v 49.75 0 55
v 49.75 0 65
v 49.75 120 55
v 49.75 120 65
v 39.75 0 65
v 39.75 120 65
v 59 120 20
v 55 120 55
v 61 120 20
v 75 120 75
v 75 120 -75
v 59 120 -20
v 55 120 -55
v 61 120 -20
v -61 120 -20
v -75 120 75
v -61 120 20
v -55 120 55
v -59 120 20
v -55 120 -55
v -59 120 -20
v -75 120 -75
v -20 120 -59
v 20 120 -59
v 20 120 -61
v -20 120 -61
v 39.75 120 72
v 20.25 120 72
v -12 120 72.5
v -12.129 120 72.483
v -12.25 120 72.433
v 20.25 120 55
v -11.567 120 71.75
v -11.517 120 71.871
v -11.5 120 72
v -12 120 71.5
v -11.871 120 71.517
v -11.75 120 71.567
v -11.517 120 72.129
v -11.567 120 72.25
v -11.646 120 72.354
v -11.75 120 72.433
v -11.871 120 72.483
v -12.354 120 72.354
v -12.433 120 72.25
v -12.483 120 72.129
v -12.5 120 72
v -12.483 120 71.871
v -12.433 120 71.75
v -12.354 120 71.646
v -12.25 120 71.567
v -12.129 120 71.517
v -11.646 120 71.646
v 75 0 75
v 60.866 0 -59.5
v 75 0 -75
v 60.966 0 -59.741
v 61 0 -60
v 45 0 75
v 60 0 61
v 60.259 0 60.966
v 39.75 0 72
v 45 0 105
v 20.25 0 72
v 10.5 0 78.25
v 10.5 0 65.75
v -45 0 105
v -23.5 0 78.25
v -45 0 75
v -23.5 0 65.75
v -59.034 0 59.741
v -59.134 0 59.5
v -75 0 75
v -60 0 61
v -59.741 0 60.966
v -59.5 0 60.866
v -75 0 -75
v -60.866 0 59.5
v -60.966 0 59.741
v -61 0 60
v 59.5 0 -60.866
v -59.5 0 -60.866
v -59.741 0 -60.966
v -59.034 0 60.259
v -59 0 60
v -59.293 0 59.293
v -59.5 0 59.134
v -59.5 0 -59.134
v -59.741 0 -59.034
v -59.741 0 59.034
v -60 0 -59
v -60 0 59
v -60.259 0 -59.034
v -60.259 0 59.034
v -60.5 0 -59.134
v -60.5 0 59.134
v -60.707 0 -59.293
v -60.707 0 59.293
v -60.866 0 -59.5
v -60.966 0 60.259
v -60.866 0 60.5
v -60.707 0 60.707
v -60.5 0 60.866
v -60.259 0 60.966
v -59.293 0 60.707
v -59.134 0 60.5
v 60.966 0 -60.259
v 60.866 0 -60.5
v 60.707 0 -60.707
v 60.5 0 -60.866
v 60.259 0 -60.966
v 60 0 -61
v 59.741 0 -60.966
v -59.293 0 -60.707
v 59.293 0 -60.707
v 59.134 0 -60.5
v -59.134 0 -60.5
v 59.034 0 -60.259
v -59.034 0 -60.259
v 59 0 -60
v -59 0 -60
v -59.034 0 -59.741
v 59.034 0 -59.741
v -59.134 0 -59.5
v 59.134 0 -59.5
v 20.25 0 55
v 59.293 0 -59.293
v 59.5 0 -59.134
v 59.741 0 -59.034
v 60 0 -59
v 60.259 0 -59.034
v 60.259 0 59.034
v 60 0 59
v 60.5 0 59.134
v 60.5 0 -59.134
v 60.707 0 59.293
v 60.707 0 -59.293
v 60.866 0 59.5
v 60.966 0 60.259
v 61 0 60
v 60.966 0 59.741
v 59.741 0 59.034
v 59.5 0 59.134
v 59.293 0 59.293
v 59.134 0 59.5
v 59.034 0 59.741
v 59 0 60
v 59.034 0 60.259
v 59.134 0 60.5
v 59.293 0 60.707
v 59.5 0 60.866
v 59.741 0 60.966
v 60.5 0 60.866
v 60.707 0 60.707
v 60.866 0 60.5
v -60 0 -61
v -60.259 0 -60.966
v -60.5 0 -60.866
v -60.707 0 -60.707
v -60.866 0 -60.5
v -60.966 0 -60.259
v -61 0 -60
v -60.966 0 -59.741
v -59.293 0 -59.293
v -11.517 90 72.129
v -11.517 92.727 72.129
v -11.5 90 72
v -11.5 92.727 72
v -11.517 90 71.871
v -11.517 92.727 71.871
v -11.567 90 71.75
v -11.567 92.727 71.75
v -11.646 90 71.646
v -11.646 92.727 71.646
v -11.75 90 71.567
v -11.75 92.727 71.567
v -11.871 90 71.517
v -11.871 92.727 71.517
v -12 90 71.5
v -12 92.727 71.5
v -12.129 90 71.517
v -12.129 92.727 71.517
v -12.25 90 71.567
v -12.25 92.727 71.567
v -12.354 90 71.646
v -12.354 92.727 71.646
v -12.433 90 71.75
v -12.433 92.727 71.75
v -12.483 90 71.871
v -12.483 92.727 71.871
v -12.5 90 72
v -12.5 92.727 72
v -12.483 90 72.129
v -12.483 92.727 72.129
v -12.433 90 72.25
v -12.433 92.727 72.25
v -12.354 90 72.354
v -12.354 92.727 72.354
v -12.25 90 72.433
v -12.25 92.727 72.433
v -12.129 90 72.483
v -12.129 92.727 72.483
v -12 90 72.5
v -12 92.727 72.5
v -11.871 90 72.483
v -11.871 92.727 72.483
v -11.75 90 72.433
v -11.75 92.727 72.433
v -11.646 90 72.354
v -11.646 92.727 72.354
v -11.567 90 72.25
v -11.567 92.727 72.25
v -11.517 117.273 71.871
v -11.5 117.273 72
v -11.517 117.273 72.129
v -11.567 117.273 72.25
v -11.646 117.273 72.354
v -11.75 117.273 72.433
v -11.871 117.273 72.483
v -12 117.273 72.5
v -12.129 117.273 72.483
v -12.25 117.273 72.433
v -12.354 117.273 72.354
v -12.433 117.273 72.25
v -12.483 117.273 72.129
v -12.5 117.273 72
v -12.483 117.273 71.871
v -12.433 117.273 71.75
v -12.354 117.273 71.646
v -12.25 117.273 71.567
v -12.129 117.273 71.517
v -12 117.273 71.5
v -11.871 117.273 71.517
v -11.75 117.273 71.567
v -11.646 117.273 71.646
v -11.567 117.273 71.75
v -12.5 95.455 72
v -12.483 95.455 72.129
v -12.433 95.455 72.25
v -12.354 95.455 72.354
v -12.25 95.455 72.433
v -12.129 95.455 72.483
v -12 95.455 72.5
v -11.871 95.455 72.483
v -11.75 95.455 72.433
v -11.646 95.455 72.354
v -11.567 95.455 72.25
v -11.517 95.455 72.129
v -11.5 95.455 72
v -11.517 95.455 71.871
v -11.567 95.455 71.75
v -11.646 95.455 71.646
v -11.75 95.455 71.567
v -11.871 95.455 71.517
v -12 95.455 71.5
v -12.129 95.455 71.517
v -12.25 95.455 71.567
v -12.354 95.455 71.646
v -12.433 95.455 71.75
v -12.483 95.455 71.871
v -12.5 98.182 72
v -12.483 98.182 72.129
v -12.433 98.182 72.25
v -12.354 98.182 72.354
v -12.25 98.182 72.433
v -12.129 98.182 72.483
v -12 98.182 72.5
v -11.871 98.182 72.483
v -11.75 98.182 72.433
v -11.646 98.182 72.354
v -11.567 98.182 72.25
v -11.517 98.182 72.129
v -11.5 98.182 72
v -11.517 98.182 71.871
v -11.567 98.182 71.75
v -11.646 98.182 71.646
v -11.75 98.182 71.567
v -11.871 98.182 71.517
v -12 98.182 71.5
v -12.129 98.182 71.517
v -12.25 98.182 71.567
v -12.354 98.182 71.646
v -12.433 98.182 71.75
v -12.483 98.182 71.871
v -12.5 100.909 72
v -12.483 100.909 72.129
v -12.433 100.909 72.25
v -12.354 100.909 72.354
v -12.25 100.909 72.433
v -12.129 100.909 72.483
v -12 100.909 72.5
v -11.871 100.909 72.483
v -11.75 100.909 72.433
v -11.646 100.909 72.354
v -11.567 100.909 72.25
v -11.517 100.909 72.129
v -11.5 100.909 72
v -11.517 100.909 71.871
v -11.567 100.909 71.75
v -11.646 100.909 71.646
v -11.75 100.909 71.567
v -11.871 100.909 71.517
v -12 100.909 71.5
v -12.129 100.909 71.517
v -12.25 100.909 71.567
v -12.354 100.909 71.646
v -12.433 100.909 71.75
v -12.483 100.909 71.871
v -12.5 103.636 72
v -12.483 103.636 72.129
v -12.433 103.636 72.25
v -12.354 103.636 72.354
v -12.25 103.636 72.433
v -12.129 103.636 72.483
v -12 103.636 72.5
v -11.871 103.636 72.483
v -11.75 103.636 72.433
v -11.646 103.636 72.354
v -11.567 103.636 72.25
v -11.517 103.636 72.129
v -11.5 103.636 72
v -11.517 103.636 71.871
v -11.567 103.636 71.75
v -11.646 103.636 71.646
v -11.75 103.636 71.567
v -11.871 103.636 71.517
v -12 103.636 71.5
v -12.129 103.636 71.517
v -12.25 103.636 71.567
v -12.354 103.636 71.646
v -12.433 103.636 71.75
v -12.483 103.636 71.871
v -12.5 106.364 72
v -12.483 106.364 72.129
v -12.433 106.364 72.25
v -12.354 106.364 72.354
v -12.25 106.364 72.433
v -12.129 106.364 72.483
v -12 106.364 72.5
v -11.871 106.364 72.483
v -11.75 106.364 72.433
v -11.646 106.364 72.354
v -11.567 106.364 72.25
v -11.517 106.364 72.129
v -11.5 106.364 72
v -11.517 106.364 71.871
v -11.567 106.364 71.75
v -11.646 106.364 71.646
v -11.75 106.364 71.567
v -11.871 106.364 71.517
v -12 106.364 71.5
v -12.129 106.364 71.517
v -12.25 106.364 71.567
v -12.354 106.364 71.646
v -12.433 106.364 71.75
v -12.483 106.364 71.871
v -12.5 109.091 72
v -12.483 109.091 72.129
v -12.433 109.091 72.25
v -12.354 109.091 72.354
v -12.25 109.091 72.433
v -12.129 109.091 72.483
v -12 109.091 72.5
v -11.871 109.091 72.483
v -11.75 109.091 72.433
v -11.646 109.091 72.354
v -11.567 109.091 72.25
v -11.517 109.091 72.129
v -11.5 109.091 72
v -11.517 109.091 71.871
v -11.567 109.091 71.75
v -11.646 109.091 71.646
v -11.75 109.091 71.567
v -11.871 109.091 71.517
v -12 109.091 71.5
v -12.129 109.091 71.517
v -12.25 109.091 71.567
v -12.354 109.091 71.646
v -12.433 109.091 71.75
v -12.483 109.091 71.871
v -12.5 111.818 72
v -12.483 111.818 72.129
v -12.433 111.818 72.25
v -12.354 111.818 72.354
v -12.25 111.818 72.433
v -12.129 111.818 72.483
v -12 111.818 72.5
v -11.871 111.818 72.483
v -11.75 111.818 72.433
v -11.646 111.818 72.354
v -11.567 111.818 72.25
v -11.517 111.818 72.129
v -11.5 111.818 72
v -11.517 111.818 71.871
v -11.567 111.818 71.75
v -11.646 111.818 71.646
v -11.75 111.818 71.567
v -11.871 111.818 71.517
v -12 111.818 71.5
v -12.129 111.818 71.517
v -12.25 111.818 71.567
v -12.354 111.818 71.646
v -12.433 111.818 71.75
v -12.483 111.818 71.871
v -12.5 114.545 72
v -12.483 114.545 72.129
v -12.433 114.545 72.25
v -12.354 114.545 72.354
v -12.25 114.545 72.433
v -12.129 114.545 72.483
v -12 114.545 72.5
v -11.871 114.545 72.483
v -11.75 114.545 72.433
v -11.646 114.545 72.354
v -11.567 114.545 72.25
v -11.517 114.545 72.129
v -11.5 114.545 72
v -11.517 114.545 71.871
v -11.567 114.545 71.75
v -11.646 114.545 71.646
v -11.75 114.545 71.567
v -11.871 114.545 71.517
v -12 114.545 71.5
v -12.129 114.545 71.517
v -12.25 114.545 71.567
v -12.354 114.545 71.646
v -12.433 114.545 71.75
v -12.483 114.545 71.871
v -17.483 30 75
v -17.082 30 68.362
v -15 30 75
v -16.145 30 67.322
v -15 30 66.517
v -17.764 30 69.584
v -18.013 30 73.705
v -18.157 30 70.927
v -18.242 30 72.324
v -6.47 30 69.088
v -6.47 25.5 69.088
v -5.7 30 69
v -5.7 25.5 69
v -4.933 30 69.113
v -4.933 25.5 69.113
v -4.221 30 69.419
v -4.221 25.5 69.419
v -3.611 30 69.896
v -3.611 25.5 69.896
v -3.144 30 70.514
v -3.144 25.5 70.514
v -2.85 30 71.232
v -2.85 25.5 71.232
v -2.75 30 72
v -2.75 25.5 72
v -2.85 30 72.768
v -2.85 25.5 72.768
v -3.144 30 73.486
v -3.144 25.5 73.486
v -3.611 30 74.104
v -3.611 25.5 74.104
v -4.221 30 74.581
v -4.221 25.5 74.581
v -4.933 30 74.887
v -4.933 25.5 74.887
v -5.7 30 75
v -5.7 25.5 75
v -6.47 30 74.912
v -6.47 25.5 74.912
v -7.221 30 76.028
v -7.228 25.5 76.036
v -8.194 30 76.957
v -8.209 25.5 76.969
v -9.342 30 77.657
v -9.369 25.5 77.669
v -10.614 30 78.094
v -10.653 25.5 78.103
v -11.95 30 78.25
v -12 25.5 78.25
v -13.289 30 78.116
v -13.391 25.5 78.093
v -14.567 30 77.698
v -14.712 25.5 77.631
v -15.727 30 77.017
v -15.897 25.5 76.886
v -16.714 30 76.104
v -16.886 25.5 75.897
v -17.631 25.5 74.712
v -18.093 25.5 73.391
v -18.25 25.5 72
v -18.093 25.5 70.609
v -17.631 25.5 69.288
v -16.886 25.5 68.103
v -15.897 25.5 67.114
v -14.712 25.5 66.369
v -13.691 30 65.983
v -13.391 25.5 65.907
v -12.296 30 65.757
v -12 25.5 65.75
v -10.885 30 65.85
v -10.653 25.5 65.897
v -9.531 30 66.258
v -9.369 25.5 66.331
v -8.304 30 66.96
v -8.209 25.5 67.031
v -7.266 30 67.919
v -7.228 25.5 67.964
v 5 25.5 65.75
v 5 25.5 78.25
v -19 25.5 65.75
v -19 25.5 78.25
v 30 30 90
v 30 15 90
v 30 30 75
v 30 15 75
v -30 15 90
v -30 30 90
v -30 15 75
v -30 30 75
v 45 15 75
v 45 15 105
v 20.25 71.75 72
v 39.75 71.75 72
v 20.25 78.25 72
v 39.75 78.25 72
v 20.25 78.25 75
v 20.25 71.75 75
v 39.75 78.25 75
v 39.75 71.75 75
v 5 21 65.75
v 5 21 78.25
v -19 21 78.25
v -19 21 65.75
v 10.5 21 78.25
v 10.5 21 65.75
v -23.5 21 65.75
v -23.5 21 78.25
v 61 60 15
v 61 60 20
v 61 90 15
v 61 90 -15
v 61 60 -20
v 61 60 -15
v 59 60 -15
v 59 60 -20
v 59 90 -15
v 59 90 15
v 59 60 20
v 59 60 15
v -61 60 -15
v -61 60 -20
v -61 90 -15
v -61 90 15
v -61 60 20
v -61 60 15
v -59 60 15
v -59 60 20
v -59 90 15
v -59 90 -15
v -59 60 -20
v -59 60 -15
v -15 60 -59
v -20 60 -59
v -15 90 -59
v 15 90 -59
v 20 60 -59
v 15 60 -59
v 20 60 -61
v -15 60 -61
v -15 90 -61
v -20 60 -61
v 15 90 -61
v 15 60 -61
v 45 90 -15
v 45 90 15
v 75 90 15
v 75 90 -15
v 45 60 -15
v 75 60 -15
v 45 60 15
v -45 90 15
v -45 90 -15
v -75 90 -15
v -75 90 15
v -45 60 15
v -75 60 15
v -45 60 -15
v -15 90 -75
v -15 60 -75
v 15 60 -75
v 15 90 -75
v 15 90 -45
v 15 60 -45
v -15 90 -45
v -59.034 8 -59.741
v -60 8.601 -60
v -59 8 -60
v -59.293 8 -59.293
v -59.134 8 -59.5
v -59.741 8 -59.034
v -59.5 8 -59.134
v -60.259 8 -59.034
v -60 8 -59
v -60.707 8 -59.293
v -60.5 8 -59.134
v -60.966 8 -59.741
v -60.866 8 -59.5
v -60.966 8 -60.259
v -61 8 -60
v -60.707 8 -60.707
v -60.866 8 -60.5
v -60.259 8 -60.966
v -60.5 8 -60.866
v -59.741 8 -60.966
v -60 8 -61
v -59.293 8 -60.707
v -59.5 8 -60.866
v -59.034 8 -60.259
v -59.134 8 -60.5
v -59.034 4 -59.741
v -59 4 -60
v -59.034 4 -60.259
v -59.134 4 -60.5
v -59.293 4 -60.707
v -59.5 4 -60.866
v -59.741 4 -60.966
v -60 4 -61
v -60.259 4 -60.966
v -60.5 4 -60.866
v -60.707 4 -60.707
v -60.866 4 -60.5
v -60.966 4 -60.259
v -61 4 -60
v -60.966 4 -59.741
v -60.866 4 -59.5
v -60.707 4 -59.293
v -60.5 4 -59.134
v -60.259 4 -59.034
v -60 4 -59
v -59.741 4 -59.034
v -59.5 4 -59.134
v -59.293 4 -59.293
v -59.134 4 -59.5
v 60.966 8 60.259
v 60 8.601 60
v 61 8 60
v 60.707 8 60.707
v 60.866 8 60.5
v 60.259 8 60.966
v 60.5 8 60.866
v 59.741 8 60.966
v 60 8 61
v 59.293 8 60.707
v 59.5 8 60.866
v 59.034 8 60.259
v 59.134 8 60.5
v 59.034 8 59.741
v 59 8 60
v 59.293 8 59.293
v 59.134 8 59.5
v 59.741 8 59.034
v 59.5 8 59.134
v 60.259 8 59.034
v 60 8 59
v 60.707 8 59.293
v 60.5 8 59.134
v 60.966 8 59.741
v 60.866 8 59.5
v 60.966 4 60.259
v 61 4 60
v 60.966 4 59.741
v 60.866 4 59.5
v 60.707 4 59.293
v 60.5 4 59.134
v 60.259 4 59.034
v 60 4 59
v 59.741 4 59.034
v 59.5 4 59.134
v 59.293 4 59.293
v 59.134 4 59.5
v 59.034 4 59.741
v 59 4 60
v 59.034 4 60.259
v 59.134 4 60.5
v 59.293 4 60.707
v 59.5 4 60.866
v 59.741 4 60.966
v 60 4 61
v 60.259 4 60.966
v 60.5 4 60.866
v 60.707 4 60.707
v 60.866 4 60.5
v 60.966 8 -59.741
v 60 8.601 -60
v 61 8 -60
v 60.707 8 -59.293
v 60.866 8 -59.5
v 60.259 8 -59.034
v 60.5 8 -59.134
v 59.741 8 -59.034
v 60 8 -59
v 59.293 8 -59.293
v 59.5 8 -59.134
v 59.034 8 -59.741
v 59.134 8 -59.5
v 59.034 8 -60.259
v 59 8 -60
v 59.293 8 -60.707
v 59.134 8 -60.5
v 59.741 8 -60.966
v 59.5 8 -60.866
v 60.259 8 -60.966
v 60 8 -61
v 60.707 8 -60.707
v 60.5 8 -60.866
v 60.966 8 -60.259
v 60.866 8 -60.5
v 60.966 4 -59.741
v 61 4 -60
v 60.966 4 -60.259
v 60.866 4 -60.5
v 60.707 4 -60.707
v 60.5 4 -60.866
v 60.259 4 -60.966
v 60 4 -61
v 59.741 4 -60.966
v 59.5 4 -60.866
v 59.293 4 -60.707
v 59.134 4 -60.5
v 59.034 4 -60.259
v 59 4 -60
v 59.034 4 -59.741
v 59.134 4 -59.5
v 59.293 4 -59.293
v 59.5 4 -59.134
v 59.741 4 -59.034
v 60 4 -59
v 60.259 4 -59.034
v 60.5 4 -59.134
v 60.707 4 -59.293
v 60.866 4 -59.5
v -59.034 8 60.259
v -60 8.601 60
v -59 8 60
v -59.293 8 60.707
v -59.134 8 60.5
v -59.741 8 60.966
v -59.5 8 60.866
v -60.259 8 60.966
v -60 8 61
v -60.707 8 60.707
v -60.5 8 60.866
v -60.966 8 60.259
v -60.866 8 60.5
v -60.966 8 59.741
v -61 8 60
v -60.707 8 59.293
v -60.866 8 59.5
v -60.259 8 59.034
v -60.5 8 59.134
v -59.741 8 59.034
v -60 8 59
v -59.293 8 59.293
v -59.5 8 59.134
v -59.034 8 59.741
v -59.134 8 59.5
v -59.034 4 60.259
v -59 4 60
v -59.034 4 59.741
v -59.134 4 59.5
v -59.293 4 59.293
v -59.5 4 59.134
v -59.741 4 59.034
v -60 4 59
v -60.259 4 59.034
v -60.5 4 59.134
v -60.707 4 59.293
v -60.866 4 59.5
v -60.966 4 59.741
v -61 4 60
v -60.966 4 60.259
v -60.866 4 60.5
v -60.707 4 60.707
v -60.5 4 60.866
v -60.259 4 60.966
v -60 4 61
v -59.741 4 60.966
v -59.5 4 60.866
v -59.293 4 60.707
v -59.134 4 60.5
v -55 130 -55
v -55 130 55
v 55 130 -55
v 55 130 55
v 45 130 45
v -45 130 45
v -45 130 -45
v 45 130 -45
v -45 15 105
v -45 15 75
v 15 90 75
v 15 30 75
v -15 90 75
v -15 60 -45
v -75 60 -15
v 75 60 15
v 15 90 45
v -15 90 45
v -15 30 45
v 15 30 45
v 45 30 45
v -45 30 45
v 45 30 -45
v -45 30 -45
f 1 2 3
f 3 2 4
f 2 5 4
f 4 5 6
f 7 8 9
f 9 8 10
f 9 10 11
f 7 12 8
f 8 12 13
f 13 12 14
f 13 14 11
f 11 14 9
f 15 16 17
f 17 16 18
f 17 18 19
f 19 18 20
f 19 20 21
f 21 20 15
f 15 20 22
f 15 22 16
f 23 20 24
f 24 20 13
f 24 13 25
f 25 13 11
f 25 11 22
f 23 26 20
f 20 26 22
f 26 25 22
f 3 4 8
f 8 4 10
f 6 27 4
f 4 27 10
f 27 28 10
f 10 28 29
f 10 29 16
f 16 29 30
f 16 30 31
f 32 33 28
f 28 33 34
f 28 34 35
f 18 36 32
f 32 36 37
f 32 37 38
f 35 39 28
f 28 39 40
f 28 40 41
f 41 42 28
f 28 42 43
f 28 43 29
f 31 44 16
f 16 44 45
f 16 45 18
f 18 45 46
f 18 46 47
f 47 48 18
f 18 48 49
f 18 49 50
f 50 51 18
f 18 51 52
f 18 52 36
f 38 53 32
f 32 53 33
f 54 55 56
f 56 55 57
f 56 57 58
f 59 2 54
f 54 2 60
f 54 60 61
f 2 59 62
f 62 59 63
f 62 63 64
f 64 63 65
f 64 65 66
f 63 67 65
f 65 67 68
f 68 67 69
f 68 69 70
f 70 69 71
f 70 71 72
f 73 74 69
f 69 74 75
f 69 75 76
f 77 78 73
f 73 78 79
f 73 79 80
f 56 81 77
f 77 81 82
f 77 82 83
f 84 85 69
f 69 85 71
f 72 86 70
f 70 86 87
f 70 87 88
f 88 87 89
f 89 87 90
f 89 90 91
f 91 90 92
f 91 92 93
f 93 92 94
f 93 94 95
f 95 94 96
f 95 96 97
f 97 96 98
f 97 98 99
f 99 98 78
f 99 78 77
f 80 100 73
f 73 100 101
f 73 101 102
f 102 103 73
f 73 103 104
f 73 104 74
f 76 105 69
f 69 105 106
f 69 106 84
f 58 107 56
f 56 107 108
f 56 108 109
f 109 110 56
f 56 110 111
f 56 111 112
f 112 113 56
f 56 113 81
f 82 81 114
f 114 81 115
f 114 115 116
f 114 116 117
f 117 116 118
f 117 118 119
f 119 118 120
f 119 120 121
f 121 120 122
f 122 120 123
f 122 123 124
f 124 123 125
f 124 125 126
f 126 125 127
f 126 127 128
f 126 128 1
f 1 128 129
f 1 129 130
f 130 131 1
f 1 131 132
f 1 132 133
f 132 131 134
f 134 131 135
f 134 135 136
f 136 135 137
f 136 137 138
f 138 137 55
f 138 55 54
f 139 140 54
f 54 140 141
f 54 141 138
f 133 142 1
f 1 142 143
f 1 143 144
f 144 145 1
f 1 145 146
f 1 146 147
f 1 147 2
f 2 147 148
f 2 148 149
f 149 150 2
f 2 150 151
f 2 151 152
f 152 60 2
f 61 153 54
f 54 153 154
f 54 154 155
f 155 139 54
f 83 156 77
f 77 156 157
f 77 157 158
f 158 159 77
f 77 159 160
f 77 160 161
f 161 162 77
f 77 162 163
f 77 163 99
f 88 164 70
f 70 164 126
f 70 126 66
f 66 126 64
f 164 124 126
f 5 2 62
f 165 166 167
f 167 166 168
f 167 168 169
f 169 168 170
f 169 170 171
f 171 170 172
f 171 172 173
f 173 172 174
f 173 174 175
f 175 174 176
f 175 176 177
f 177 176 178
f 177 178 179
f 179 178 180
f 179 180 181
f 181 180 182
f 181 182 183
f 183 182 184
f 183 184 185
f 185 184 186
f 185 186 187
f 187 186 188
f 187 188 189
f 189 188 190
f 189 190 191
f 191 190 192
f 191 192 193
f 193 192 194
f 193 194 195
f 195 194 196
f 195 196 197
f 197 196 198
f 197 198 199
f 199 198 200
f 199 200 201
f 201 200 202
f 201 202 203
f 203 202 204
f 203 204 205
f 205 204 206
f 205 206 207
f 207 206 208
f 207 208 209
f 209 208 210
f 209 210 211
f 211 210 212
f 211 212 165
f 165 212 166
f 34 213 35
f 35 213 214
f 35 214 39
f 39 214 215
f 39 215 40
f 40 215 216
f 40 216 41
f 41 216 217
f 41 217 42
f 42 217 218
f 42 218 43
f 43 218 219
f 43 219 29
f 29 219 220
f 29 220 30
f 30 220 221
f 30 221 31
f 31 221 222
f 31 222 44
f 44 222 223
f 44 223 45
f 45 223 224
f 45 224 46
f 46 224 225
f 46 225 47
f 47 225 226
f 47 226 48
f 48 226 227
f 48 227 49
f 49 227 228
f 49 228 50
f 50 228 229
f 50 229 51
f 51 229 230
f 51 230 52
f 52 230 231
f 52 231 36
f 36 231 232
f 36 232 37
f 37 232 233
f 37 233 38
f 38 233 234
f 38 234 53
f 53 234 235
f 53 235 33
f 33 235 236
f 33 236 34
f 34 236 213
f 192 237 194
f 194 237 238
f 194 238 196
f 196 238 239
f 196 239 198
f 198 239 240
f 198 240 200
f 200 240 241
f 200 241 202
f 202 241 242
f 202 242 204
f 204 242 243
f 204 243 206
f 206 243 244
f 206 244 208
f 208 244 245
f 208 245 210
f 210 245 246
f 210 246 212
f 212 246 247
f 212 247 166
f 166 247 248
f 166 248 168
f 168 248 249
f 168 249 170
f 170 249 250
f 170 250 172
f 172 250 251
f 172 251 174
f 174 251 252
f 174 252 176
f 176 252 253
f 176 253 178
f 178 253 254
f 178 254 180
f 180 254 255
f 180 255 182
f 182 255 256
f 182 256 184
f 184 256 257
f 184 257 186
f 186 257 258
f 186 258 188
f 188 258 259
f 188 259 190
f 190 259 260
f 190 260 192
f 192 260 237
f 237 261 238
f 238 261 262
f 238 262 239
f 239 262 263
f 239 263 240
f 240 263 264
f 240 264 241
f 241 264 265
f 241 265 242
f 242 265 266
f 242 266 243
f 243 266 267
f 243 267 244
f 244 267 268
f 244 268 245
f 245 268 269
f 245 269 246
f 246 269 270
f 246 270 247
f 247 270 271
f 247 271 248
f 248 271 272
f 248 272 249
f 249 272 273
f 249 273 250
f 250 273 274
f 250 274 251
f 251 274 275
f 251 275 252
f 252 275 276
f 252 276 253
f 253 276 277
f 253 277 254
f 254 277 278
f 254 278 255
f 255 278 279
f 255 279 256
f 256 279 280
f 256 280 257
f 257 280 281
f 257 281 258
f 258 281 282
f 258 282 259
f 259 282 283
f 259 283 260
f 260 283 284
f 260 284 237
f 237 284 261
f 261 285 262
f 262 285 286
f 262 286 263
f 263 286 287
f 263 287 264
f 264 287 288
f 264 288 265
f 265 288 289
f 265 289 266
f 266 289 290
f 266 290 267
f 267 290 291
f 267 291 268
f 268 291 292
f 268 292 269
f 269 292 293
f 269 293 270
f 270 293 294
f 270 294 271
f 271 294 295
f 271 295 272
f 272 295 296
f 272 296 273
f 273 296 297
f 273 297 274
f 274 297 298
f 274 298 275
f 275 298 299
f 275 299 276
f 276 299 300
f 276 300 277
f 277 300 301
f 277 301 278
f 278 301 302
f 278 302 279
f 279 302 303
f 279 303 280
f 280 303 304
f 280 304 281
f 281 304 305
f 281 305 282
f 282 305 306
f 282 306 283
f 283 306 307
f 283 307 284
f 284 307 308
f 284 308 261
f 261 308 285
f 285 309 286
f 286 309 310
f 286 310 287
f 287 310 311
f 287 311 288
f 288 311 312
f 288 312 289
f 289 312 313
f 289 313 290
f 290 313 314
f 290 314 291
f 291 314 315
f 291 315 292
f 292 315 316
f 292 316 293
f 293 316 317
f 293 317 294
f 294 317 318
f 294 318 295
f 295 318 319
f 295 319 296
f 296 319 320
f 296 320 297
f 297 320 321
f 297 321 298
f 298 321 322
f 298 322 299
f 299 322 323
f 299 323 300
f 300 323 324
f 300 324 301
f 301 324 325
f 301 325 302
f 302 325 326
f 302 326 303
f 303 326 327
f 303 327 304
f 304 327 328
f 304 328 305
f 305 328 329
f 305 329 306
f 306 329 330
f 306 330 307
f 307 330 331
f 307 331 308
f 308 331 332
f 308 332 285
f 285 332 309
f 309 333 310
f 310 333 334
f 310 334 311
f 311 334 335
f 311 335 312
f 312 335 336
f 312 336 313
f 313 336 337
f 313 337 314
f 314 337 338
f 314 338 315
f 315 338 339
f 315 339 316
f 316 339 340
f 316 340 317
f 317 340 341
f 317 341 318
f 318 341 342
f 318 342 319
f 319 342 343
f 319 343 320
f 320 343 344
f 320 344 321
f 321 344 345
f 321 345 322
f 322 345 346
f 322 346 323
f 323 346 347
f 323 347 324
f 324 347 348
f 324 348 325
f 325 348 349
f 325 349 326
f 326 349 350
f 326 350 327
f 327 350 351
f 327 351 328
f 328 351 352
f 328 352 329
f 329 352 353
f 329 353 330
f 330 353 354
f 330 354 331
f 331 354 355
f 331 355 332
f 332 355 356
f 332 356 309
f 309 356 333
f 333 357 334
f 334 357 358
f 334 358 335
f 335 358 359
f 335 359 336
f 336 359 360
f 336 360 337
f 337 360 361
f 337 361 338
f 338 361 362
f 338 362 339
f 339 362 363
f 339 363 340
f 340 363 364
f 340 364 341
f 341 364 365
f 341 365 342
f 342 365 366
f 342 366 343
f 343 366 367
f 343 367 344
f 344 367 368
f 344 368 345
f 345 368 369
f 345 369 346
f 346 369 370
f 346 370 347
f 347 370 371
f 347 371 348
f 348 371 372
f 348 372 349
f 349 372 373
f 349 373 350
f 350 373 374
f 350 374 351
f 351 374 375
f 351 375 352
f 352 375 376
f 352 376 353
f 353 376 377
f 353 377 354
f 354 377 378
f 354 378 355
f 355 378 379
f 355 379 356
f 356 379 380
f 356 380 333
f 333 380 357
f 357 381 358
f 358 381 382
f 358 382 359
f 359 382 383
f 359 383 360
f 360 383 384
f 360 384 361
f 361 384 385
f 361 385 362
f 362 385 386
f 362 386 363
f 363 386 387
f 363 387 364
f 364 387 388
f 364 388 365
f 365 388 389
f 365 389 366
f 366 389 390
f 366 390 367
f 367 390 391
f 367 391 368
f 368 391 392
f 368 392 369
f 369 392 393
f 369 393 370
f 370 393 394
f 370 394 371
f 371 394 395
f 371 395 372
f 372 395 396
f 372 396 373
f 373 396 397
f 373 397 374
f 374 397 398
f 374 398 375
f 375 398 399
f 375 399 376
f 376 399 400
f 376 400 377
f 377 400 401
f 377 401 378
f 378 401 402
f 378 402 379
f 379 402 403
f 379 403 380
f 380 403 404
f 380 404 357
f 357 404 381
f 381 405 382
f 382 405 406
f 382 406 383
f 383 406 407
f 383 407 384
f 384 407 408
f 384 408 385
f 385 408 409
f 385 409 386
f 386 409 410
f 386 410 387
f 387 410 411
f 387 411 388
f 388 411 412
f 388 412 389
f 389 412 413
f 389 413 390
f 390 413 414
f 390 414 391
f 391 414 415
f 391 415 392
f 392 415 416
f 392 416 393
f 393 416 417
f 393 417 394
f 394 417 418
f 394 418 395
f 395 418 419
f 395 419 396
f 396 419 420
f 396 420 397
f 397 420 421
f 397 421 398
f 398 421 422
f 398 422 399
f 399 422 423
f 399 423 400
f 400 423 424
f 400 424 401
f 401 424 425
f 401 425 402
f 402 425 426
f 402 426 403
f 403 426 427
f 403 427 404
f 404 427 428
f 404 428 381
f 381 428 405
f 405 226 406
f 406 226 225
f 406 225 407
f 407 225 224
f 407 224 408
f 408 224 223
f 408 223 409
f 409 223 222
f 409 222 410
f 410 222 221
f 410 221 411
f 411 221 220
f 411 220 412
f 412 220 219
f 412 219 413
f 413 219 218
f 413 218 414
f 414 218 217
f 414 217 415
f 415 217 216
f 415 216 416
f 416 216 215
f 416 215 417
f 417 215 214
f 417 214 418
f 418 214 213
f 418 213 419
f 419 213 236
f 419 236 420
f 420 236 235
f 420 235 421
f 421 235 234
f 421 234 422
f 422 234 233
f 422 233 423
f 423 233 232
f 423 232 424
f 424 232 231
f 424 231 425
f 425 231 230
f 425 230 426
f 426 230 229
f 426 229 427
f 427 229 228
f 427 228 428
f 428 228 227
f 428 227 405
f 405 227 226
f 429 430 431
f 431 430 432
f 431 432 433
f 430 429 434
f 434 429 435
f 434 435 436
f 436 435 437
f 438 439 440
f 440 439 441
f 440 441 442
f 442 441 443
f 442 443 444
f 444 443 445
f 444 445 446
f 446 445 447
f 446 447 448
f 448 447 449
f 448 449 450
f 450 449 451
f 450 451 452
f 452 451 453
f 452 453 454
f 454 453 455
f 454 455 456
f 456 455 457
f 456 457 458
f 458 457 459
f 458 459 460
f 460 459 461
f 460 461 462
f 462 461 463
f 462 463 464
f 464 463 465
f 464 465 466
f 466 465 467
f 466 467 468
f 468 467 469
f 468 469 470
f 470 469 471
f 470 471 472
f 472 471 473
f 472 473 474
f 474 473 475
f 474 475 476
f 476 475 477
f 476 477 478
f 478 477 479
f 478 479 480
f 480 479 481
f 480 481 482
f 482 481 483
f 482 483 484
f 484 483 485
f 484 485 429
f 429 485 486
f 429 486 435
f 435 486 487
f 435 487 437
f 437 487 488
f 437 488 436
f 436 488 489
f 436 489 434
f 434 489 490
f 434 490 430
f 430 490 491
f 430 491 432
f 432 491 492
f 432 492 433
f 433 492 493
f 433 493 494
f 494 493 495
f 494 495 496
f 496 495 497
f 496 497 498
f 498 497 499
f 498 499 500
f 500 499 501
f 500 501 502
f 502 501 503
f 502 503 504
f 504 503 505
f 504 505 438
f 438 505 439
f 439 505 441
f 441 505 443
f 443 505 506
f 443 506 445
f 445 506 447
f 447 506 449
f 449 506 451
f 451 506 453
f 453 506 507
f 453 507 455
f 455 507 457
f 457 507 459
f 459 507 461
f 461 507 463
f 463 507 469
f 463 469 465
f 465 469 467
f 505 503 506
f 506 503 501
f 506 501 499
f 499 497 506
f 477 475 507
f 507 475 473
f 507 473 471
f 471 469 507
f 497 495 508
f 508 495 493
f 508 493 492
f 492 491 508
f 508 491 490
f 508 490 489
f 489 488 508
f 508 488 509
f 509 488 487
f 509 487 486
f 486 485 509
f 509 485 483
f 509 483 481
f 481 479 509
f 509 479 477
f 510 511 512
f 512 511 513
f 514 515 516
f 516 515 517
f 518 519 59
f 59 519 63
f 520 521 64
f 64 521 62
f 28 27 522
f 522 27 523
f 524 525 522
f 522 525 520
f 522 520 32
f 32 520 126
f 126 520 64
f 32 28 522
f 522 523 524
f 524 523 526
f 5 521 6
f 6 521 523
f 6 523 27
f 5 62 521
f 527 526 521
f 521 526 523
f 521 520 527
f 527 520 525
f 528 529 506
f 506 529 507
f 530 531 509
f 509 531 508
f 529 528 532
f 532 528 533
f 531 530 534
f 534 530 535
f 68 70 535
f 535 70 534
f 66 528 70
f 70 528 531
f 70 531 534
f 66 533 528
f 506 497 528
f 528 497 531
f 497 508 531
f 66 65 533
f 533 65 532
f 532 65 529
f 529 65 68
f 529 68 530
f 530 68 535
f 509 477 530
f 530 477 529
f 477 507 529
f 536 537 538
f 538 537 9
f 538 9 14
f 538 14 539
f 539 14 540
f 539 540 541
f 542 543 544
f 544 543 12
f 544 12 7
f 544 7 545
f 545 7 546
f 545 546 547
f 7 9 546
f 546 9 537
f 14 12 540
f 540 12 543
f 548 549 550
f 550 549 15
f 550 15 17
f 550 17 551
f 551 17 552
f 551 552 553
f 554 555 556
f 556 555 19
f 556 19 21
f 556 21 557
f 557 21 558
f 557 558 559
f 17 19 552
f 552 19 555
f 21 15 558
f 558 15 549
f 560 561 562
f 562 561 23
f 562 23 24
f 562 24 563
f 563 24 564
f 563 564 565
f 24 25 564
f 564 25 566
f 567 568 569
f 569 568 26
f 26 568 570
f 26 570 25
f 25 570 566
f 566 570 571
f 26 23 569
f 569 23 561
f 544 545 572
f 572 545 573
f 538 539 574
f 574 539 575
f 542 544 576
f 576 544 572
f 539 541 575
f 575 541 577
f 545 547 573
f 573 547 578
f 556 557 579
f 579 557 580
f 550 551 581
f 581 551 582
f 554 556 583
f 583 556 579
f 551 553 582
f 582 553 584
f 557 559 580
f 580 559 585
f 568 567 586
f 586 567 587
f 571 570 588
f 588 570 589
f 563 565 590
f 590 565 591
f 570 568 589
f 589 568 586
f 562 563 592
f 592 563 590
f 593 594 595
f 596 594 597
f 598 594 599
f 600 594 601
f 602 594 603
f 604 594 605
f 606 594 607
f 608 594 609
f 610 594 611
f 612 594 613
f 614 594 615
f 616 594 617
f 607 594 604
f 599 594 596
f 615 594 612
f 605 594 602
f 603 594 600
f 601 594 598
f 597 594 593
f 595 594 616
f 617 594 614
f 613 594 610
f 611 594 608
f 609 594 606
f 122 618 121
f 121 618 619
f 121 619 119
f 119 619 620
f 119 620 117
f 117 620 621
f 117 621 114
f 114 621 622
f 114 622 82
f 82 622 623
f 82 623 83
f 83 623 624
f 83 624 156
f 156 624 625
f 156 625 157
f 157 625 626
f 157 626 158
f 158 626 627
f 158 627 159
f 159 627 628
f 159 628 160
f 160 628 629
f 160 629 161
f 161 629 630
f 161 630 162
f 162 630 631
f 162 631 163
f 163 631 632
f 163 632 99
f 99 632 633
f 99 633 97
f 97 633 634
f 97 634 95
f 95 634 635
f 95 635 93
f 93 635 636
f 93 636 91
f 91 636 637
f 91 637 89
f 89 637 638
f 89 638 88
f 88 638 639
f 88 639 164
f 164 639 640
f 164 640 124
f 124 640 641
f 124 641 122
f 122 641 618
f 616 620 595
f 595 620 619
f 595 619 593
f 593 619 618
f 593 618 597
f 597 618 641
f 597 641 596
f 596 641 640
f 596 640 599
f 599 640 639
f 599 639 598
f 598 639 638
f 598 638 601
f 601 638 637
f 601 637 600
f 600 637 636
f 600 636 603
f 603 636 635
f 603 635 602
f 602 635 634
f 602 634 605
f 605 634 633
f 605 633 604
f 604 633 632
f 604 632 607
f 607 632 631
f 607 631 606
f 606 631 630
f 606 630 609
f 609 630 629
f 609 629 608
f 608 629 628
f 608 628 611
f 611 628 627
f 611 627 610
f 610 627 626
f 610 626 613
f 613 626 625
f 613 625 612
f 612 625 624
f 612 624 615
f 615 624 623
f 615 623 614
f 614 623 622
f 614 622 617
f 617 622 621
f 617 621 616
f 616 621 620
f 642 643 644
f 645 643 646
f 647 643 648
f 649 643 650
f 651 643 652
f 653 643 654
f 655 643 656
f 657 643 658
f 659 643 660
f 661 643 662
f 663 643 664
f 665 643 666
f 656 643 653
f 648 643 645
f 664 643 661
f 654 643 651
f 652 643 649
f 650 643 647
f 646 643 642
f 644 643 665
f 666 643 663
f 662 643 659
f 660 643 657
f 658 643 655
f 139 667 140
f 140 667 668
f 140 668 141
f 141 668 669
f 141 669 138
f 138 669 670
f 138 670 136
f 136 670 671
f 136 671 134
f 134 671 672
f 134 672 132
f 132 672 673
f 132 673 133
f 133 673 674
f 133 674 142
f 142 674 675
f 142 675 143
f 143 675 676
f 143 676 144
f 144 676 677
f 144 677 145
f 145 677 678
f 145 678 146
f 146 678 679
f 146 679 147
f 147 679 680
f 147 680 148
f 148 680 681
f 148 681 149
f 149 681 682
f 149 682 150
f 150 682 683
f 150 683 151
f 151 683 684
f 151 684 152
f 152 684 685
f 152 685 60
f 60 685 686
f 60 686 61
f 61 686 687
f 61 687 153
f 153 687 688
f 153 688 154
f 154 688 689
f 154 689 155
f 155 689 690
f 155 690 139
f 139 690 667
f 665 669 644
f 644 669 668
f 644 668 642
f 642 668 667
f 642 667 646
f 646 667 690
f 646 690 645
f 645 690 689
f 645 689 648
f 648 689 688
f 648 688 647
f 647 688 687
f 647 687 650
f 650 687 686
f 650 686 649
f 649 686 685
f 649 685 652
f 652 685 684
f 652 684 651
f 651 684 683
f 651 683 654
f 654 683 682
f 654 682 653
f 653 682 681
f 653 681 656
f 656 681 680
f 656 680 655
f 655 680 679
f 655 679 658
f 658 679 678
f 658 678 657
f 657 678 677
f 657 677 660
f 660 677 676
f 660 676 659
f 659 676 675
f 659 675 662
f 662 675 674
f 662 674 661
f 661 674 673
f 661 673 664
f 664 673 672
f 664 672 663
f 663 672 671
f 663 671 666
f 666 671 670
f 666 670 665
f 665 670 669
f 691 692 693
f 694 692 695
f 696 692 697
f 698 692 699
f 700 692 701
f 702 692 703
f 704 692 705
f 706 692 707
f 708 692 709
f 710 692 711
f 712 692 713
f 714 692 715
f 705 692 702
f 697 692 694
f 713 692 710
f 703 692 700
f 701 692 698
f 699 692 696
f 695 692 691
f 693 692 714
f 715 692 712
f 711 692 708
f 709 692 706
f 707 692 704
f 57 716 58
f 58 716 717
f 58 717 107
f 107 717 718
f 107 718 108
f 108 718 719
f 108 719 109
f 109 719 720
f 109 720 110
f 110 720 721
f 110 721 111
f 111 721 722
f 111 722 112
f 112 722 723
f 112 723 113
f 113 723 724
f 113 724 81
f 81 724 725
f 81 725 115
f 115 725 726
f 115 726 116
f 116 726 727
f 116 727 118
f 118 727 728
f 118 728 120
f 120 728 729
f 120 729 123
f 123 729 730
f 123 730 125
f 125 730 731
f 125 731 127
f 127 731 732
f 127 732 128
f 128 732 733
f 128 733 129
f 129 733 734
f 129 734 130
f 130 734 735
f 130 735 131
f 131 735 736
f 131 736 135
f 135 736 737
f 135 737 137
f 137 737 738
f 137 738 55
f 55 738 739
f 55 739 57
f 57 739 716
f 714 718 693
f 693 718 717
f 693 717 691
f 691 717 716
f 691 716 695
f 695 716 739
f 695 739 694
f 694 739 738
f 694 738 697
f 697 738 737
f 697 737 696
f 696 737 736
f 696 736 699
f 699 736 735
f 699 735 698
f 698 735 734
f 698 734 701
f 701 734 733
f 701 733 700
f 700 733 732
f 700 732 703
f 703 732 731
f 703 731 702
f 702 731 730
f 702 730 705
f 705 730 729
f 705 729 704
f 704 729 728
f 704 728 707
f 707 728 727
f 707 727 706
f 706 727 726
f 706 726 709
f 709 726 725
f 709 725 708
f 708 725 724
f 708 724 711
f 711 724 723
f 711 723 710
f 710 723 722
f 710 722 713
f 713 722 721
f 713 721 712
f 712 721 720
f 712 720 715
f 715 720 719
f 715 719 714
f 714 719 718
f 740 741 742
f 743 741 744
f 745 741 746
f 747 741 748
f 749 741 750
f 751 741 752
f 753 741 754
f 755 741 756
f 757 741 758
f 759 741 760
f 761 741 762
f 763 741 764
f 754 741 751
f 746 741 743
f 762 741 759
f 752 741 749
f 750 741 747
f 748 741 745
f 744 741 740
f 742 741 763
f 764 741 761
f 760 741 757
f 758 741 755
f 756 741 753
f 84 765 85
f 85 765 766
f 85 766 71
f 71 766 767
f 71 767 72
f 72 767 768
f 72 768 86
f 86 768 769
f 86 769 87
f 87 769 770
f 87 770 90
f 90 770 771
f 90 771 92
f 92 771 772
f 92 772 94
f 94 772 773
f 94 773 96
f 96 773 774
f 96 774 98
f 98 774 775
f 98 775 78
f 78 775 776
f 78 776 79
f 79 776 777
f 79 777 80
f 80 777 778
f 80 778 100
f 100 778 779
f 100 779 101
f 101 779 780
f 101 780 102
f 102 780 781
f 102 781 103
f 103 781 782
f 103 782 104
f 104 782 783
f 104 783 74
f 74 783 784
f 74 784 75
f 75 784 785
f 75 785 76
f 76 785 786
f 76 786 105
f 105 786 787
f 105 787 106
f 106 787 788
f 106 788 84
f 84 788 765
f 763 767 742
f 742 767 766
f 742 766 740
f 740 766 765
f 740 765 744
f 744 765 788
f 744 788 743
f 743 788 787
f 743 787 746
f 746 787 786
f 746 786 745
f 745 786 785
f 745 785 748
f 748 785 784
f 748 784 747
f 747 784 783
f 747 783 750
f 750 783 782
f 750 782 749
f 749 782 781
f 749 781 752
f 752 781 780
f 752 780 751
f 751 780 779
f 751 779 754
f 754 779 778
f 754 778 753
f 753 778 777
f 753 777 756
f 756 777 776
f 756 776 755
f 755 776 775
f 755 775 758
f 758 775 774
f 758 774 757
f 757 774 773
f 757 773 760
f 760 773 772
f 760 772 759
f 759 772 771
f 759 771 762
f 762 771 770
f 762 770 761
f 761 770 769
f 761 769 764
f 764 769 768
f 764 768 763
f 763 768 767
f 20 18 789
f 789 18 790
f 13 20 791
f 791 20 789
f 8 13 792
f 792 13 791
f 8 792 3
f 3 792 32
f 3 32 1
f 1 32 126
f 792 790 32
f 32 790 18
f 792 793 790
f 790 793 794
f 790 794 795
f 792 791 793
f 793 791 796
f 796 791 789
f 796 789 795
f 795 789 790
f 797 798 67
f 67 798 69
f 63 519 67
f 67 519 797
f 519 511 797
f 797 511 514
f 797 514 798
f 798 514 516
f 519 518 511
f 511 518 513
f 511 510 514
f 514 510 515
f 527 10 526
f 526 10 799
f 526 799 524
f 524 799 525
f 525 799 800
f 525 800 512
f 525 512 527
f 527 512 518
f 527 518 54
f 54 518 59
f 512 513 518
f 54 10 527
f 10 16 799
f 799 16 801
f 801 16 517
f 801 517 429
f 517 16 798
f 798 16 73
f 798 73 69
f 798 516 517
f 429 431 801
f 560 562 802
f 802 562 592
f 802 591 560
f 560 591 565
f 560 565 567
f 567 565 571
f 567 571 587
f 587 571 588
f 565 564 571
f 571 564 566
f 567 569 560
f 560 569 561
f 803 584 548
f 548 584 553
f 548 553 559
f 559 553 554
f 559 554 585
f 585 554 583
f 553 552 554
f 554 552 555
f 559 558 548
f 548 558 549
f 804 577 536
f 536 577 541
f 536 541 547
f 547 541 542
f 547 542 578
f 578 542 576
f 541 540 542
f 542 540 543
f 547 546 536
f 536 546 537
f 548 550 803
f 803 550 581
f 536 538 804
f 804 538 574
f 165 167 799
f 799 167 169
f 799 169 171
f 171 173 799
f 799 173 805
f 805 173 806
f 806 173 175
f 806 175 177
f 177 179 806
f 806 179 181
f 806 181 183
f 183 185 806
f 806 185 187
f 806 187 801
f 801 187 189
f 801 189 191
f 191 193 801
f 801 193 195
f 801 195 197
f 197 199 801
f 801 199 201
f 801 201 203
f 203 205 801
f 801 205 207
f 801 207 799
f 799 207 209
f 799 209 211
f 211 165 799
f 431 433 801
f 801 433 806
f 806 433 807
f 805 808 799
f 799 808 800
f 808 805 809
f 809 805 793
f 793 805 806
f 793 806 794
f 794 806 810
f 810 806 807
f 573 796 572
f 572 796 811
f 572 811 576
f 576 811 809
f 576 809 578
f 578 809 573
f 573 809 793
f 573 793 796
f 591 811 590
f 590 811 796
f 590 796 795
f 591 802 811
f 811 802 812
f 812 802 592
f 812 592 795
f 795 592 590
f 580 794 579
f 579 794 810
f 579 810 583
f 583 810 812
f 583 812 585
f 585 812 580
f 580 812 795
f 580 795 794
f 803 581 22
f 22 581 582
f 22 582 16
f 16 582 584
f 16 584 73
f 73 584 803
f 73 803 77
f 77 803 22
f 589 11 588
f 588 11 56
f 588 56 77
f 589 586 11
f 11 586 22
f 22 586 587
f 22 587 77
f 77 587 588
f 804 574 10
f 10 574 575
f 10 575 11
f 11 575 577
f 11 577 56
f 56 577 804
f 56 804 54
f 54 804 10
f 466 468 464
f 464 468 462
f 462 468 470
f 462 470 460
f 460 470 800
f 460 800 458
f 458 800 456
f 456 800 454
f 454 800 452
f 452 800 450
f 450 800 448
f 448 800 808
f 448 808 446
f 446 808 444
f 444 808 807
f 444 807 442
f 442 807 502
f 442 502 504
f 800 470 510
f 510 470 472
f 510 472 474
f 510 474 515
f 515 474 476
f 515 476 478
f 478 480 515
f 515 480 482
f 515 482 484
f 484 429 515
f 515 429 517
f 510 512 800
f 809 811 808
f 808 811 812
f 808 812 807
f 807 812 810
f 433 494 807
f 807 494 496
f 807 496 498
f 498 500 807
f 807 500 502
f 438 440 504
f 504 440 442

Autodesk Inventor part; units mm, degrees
ref_plane "YZ Plane" through (0, 0, 0) normal (1, 0, 0) x (0, 1, 0)
ref_plane "XZ Plane" through (0, 0, 0) normal (0, 1, 0) x (-1, 0, 0)
ref_plane "XY Plane" through (0, 0, 0) normal (0, 0, 1) x (1, 0, 0)
sketch "Náčrt1" plane through (0, 0, 0) normal (0, 1, 0) x (-1, 0, 0)
  line L0 (75, 75) -> (-75, 75)
  line L1 (-75, 75) -> (-75, -75)
  line L2 (-75, -75) -> (75, -75)
  line L3 (75, -75) -> (75, 75)
  line L4 (75, 75) -> (-75, -75) construction
  line L5 (-75, 75) -> (75, -75) construction
  point P0 (0, 0)
  dimension "d0" = 150
  dimension "d1" = 150
extrude "Vysunutí1" add sketch "Náčrt1" along normal blind 30
sketch "Náčrt2" plane through (0, 30, 0) normal (0, 1, 0) x (1, 0, 0)
  line L0 (75, -75) -> (-75, -75)
  line L1 (-75, -75) -> (-75, 75)
  line L2 (-75, 75) -> (75, 75)
  line L3 (75, 75) -> (75, -75)
  line L4 (75, -75) -> (-75, 75) construction
  line L5 (-75, -75) -> (75, 75) construction
  line L6 (45, -45) -> (-45, -45)
  line L7 (-45, -45) -> (-45, 45)
  line L8 (-45, 45) -> (45, 45)
  line L9 (45, 45) -> (45, -45)
  line L10 (45, -45) -> (-45, 45) construction
  line L11 (-45, -45) -> (45, 45) construction
  point P0 (0, 0)
  dimension "d4" = 150
  dimension "d5" = 150
  dimension "d6" = 90
  dimension "d7" = 90
extrude "Vysunutí2" add sketch "Náčrt2" along normal blind 90
sketch "Náčrt3" plane through (-75, 0, 75) normal (0, 0, 1) x (1, 0, 0)
  line L0 (120, 30) -> (30, 30) projected
  line L1 (60, 30) -> (90, 30)
  line L2 (90, 30) -> (90, 90)
  line L3 (90, 90) -> (60, 90)
  line L4 (60, 90) -> (60, 30)
  point P0 (75, 0)
  dimension "d10" = 30
  dimension "d11" = 60
extrude "Vysunutí3" cut sketch "Náčrt3" against normal blind 90
sketch "Náčrt4" plane through (75, 0, 75) normal (1, 0, 0) x (0, 0, -1)
  line L0 (60, 60) -> (90, 60)
  line L1 (90, 60) -> (90, 90)
  line L2 (90, 90) -> (60, 90)
  line L3 (60, 90) -> (60, 60)
  point P0 (75, 0)
  dimension "d14" = 30
  dimension "d15" = 30
extrude "Vysunutí4" cut sketch "Náčrt4" against normal through all
sketch "Náčrt5" plane through (75, 0, -75) normal (0, 0, -1) x (-1, 0, 0)
  line L0 (60, 30) -> (60, 90) projected
  line L1 (60, 90) -> (90, 90)
  line L2 (90, 90) -> (90, 60)
  line L3 (90, 60) -> (60, 60)
  line L4 (60, 60) -> (60, 90)
  point P0 (75, 0)
  dimension "d18" = 30
  dimension "d19" = 30
extrude "Vysunutí5" cut sketch "Náčrt5" against normal through all
sketch "Náčrt6" plane through (0, 0, 0) normal (1, 0, 0) x (0, 1, 0)
  line L0 (0, 75) -> (120, 75) projected
  line L1 (0, 75) -> (0, -75) projected
  line L2 (0, 75) -> (30, 75)
  line L3 (30, 75) -> (30, 105)
  line L4 (30, 105) -> (0, 105)
  line L5 (0, 105) -> (0, 75)
  line L6 (30, 105) -> (15, 105)
  line L7 (15, 105) -> (15, 90)
  line L8 (15, 90) -> (30, 90)
  line L9 (30, 90) -> (30, 105)
  point P0 (0, 0)
  dimension "d28" = 30
  dimension "d29" = 30
  dimension "d30" = 15
  dimension "d31" = 15
extrude "Vysunutí6" add sketch "Náčrt6" along normal mid plane 90 contours L5 L4 L7 L8 L3 L0
sketch "Náčrt7" plane through (0, 120, 0) normal (0, 1, 0) x (1, 0, 0)
  line L0 (15, -45) -> (45, -45) projected
  line L1 (-45, 45) -> (45, 45)
  line L2 (45, 45) -> (45, -45)
  line L3 (45, -45) -> (-45, -45)
  line L4 (-45, -45) -> (-45, 45)
  line L5 (-45, 45) -> (45, -45) construction
  line L6 (45, 45) -> (-45, -45) construction
  line L7 (-55, 55) -> (55, 55)
  line L8 (55, 55) -> (55, -55)
  line L9 (55, -55) -> (-55, -55)
  line L10 (-55, -55) -> (-55, 55)
  line L11 (-55, 55) -> (55, -55) construction
  line L12 (55, 55) -> (-55, -55) construction
  point P0 (0, 0)
  dimension "d32" = 110
  dimension "d33" = 110
extrude "Vysunutí7" add sketch "Náčrt7" along normal blind 10
sketch "Náčrt9" plane through (0, 0, 0) normal (0, -1, 0) x (1, 0, 0)
  line L0 (75, 75) -> (75, -75) projected
  line L1 (-75, 75) -> (-45, 75) projected
  point P0 (0, 0)
  point P1 (60, 60)
  point P2 (60, -60)
  point P3 (-60, -60)
  point P4 (-60, 60)
  dimension "d48" = 120
  dimension "d49" = 120
  dimension "d50" = 15
  dimension "d58" = 15
hole "Díra1" at (60, 0, 60) at (60, 0, -60) at (-60, 0, -60) at (-60, 0, 60) direction (0, 1, 0) diameter 2 depth 8 tip angle 118
sketch "Náčrt10" plane through (0, 120, 0) normal (0, 1, 0) x (1, 0, 0)
  line L0 (61, -20) -> (59, -20)
  line L1 (59, -20) -> (59, 20)
  line L2 (59, 20) -> (61, 20)
  line L3 (61, 20) -> (61, -20)
  line L4 (75, -75) -> (75, 75) projected
  line L5 (45, 45) -> (45, -45) projected
  line L6 (75, 15) -> (45, 15) projected
  line L7 (75, -15) -> (45, -15) projected
  line L8 (0, 17.5556) -> (0, -18.0256) construction
  line L9 (-61, -20) -> (-59, -20)
  line L10 (-59, -20) -> (-59, 20)
  line L11 (-59, 20) -> (-61, 20)
  line L12 (-61, 20) -> (-61, -20)
  line L13 (-75, 15) -> (-45, 15)
  line L14 (-75, -15) -> (-45, -15)
  line L15 (75, 75) -> (-75, 75) construction
  line L16 (0, 0) -> (-75, 75) construction
  line L17 (20, 61) -> (20, 59)
  line L18 (20, 59) -> (-20, 59)
  line L19 (-20, 59) -> (-20, 61)
  line L20 (-20, 61) -> (20, 61)
  line L21 (-15, 75) -> (-15, 45)
  line L22 (15, 75) -> (15, 45)
  point P0 (59, 0)
  point P1 (60, 20)
  point P2 (60, -20)
  point P3 (-59, 0)
  point P4 (-60, 20)
  point P5 (-60, -20)
  point P6 (0, 59)
  point P7 (-20, 60)
  point P8 (20, 60)
  dimension "d51" = 2
  dimension "d52" = 14
  dimension "d53" = 14
  dimension "d54" = 5
  dimension "d55" = 5
extrude "Vysunutí9" cut sketch "Náčrt10" against normal blind 60 contours L0 L1 L7 L3 | L7 L1 L6 L3 | L6 L1 L2 L3 | L12 L14 L10 L9 | L12 L13 L10 L14 | L12 L11 L10 L13 | L17 L18 L22 L20 | L22 L18 L21 L20 | L21 L18 L19 L20
sketch "Náčrt11" plane through (0, 0, 0) normal (0, -1, 0) x (1, 0, 0)
  line L0 (-75, 75) -> (-45, 75) projected
  line L1 (10.5, 78.25) -> (-23.5, 78.25)
  line L2 (-23.5, 78.25) -> (-23.5, 65.75)
  line L3 (-23.5, 65.75) -> (10.5, 65.75)
  line L4 (10.5, 65.75) -> (10.5, 78.25)
  line L5 (-45, 75) -> (-45, 105) projected
  circle A0 centre (-12, 72) radius 6.25
  point P0 (0, 0)
  point P1 (-23.5, 72)
  dimension "d65" = 34
  dimension "d66" = 12.5
  dimension "d92" = 11.5
extrude "Vysunutí10" cut sketch "Náčrt11" against normal blind 21
sketch "Náčrt13" plane through (0, 21, 0) normal (0, -1, 0) x (1, 0, 0)
  line L0 (10.5, 65.75) -> (-23.5, 65.75) projected
  line L1 (-23.5, 78.25) -> (10.5, 78.25) projected
  line L2 (-19, 65.75) -> (5, 65.75)
  line L3 (5, 65.75) -> (5, 78.25)
  line L4 (5, 78.25) -> (-19, 78.25)
  line L5 (-19, 78.25) -> (-19, 65.75)
  line L6 (10.5, 78.25) -> (10.5, 65.75) projected
  line L7 (-23.5, 65.75) -> (-23.5, 78.25) projected
  point P0 (0, 0)
  point P1 (-15, 78.25)
  point P2 (10.5, 72)
  point P3 (5, 72)
  point P4 (-23.5, 75)
  point P5 (-19, 72)
  dimension "d79" = 24
  dimension "d80" = 5.5
  dimension "d81" = 4.5
extrude "Vysunutí12" cut sketch "Náčrt13" against normal blind 4.5 contours L0 L5 L1 L3
sketch "Náčrt15" plane through (-75, 120, 75) normal (0, 0, 1) x (1, 0, 0)
  line L0 (95.25, -41.75) -> (114.75, -41.75)
  line L1 (114.75, -41.75) -> (114.75, -48.25)
  line L2 (114.75, -48.25) -> (95.25, -48.25)
  line L3 (95.25, -48.25) -> (95.25, -41.75)
  line L4 (60, -30) -> (90, -30) projected
  line L5 (90, -30) -> (120, -30)
  line L6 (120, -30) -> (120, -60)
  line L7 (120, -60) -> (90, -60)
  line L8 (90, -60) -> (90, -30)
  point P0 (75, -120)
  point P1 (105, -41.75)
  point P2 (114.75, -45)
  dimension "d95" = 30
  dimension "d96" = 6.5
  dimension "d97" = 19.5
  dimension "d98" = 15
  dimension "d99" = 15
  dimension "d100" = 15
extrude "Vysunutí14" cut sketch "Náčrt15" against normal blind 20 contours L0 L1 L2 L3
sketch "Náčrt16" plane through (0, 0, 0) normal (0, -1, 0) x (1, 0, 0)
  line L0 (20.25, 75) -> (20.25, 55) projected
  line L1 (39.75, 75) -> (39.75, 55) projected
  line L2 (20.25, 72) -> (39.75, 72)
  line L3 (39.75, 72) -> (39.75, 55)
  line L4 (39.75, 55) -> (20.25, 55)
  line L5 (20.25, 55) -> (20.25, 72)
  line L6 (45, 75) -> (75, 75) projected
  point P0 (0, 0)
  dimension "d103" = 17
  dimension "d104" = 3
extrude "Vysunutí15" cut sketch "Náčrt16" against normal through all
sketch "Náčrt17" plane through (-45, 15, 90) normal (0, 0, 1) x (1, 0, 0)
  line L0 (90, 15) -> (75, 15)
  line L1 (75, 15) -> (75, 0)
  line L2 (75, 0) -> (90, 0)
  line L3 (90, 0) -> (90, 15)
  line L4 (0, 15) -> (30, 15) projected
  line L5 (0, 15) -> (15, 15)
  line L6 (15, 15) -> (15, 0)
  line L7 (15, 0) -> (0, 0)
  line L8 (0, 0) -> (0, 15)
  point P0 (45, -15)
  dimension "d107" = 15
  dimension "d108" = 15
  dimension "d109" = 15
  dimension "d110" = 15
extrude "Vysunutí16" cut sketch "Náčrt17" against normal blind 15
sketch "Náčrt18" plane through (0, 25.5, 0) normal (0, -1, 0) x (1, 0, 0)
  circle A0 centre (-12, 72) radius 6.25
  line L0 (-23.5, 78.25) -> (10.5, 78.25) projected
  line L1 (-23.5, 65.75) -> (-23.5, 78.25) projected
  circle A1 centre (-5.75, 72) radius 3
  point P0 (0, 0)
  point P1 (-6.47, 69.0877)
  point P2 (-6.47, 74.9123)
  dimension "d114" = 12.5
  dimension "d113" = 11.5
  dimension "d115" = 6
extrude "Vysunutí17" cut sketch "Náčrt18" against normal blind 4.5
sketch "Náčrt19" plane through (0, 120, 0) normal (0, 1, 0) x (1, 0, 0)
  arc A0 (-17.4829, -75) -> (-6.47, -74.9123) centre (-12, -72) ccw projected
  circle A1 centre (-12, -72) radius 0.5
  point P0 (0, 0)
  dimension "d118" = 1
extrude "Vysunutí18" cut sketch "Náčrt19" against normal blind 30
sketch "Náčrt20" plane through (0, 120, 0) normal (0, 1, 0) x (1, 0, 0)
  line L0 (39.75, -55) -> (39.75, -72) projected
  line L1 (39.75, -55) -> (49.75, -55)
  line L2 (49.75, -55) -> (49.75, -65)
  line L3 (49.75, -65) -> (39.75, -65)
  line L4 (39.75, -65) -> (39.75, -55)
  point P0 (0, 0)
  dimension "d121" = 10
  dimension "d122" = 10
extrude "Vysunutí19" cut sketch "Náčrt20" against normal through all
properties part number "steny" material "Beton"
